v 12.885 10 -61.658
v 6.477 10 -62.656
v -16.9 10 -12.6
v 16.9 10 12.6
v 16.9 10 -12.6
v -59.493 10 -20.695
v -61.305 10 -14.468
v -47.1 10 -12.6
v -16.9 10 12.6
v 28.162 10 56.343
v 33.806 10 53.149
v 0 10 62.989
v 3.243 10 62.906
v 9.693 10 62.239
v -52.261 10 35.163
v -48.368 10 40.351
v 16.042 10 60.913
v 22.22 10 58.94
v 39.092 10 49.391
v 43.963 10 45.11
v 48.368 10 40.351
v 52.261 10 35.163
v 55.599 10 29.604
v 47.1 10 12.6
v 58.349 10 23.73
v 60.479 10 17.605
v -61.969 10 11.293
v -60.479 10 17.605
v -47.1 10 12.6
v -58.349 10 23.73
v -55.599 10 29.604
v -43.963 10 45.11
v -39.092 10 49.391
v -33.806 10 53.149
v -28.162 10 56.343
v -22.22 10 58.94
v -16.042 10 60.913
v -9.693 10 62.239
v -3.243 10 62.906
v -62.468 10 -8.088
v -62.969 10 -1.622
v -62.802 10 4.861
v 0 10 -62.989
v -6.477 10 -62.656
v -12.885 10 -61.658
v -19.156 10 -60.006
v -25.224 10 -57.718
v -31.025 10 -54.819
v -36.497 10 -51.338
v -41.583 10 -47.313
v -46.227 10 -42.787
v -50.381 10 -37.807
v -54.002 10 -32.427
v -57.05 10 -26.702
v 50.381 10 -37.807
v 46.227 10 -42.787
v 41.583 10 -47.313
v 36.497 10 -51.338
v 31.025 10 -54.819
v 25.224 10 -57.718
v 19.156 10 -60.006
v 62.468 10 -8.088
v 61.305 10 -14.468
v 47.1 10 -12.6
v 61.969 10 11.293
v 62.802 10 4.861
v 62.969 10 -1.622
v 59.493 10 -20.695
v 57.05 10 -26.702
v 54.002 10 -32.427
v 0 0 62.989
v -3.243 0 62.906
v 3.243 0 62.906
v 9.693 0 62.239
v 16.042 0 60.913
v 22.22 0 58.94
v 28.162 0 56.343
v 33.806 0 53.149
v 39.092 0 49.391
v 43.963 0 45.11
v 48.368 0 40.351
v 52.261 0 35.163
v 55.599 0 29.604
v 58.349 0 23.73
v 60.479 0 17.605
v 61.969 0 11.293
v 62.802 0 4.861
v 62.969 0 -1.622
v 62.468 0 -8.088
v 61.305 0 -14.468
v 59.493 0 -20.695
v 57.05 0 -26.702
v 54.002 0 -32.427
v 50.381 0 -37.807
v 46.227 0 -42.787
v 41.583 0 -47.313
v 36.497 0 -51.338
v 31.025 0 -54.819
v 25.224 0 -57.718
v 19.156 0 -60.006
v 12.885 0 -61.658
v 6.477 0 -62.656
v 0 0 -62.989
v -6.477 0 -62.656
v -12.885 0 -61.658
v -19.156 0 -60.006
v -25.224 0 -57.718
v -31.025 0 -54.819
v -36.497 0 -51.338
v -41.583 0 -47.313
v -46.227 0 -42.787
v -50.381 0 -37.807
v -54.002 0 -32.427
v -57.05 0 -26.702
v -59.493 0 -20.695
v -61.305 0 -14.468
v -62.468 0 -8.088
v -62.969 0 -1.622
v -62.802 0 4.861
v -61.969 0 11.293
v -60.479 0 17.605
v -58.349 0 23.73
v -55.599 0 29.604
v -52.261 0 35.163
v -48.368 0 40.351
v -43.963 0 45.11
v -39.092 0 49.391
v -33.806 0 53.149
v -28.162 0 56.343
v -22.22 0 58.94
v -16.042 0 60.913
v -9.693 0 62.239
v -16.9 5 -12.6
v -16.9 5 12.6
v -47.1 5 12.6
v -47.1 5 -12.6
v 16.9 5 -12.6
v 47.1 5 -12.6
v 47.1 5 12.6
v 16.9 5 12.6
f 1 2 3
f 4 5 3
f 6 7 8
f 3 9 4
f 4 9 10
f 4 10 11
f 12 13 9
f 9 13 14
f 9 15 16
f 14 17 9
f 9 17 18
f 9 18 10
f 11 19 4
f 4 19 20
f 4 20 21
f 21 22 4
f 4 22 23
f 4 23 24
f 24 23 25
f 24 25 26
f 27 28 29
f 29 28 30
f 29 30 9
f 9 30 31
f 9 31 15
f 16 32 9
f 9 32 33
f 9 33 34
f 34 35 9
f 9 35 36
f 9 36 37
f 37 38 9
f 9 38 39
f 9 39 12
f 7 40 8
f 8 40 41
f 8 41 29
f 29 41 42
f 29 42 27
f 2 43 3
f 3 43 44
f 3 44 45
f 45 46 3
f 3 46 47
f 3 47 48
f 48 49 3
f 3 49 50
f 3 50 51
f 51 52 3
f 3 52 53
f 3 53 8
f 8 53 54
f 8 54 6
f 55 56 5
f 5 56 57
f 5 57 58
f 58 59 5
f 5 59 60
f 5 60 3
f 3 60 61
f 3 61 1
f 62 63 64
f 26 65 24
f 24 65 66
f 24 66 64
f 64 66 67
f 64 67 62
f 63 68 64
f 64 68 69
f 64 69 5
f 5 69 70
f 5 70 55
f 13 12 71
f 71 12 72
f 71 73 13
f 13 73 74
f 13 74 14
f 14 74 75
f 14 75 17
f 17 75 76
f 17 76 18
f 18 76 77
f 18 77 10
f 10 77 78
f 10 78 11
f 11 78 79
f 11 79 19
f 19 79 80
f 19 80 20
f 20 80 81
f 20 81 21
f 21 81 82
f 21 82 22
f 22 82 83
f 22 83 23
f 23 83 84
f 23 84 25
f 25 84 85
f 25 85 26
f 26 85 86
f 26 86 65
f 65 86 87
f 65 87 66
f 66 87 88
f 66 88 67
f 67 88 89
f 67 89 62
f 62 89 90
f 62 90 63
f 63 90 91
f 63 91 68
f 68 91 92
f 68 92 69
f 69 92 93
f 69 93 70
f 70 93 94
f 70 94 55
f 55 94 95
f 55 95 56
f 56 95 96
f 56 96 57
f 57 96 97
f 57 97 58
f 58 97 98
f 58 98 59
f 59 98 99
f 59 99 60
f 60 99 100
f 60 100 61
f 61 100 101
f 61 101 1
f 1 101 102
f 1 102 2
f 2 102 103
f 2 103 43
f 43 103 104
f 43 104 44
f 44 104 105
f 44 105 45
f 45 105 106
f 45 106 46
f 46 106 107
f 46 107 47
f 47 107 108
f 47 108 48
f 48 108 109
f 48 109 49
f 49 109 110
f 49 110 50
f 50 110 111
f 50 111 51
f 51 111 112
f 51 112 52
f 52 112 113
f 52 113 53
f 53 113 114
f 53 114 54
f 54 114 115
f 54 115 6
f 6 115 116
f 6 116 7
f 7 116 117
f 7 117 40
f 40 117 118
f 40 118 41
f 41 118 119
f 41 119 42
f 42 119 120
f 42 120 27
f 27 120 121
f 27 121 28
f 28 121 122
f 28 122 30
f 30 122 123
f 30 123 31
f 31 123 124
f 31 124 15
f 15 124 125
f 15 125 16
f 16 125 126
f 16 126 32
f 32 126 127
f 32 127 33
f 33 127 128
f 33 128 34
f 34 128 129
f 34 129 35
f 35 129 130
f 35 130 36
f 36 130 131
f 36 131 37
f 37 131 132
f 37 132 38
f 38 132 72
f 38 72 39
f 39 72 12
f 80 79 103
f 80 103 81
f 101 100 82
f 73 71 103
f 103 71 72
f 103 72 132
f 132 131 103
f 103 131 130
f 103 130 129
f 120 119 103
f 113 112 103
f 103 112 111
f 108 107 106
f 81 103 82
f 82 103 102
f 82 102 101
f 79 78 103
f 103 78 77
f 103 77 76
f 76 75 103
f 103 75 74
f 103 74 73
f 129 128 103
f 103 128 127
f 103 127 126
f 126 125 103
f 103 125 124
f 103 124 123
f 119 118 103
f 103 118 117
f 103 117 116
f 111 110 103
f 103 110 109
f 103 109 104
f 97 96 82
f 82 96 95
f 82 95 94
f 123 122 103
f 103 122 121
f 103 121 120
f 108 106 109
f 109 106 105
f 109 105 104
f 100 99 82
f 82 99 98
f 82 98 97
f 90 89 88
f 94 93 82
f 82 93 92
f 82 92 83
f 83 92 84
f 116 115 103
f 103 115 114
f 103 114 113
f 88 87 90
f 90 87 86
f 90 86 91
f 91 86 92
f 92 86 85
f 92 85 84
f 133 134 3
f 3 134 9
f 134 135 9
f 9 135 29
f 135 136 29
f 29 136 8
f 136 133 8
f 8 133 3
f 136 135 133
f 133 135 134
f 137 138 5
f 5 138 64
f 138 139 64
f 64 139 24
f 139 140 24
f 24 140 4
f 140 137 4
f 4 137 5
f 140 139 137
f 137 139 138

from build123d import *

# Parameters (mm, degrees)
SKETCH_1_R          = 62.989422777
EXTRUDE_1_DEPTH     = 10
SKETCH_2_W          = 30.2
SKETCH_2_H          = 25.2
CUT_EXTRUDE_1_DEPTH = 5


with BuildPart() as part:
    # 草图1 → 凸台-拉伸1 (new body)
    with BuildSketch(Plane(origin=(0, 0, 0), x_dir=(1, 0, 0), z_dir=(0, 1, 0))):
        with Locations(Location((0, 0, 0), (0, 0, 270))):
            Circle(SKETCH_1_R)
    extrude(amount=EXTRUDE_1_DEPTH)

    # 草图2 → 切除-拉伸1 (cut)
    with BuildSketch(Plane(origin=(0, 10, 0), x_dir=(1, 0, 0), z_dir=(0, 1, 0))):
        with Locations((-32, 0)):
            Rectangle(SKETCH_2_W, SKETCH_2_H)
        with Locations((32, 0)):
            Rectangle(SKETCH_2_W, SKETCH_2_H)
    extrude(amount=-CUT_EXTRUDE_1_DEPTH, mode=Mode.SUBTRACT)


solid = part.part
